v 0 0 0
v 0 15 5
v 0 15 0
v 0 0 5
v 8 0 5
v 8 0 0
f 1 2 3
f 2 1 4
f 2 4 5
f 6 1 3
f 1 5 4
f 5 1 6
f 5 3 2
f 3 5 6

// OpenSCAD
// Title: Wedge Triangle Module
// Author: Carlo Wood
// Date: 19/8/2016
// License: Creative Commons - Share Alike - Attribution

// Usage: Include in your other .scad projects and call wedge with arguments for the height
//        of the wedge, two of the legs of the wedge, and the angle between those legs.
//        The resulting wedge will be placed with the point at the origin, `leg1' along the x-axis
//        and extending `height' into the z axis, with the angle starting at the x axis and
//        extending counter-clockwise as per the right-hand rule towards `leg2`.


//           Y-axis
//           |
//           |  /\
//      leg2 --/  \
//           |/    \
//           /)_____\_______X-axis
//     angle--'  \__ leg1
//
module wedge(angle, leg1, leg2, height = 0.5)
{
  // Store the length of all three sides in an array.
  side = [sqrt(leg1 * leg1 + leg2 * leg2 - 2 * leg1 * leg2 * cos(angle)),	// Law of Cosines.
          leg1,
          leg2];

  i = (leg2 > leg1) ? 2 : 1;
  longest_leg = side[i];
  longest_side = (side[0] > longest_leg) ? side[0] : longest_leg;

  // The corner opposite of the shortest leg must be less than 90 degrees.
  sa = asin(side[3 - i] * sin(angle) / side[0]);		// Law of Sines.
  sb = 180 - angle - sa;					// Sum of all angles is 180 degrees.

  // Store the size of all three angles in an array.
  a = [angle, (i == 1) ? sb : sa, (i == 1) ? sa : sb];

  // Is there anything to draw at all?
  if (angle > 0 && angle < 180)
  {
    intersection()
    {
      if (angle <= 90)
	intersection()
	{
	  cube([longest_leg, longest_leg, height]);
	  rotate([0, 0, angle - 90])
	    cube([longest_leg, longest_leg, height]);
	}
      else
	union()
	{
	  cube([longest_leg, longest_leg, height]);
	  rotate([0, 0, angle - 90])
	    cube([longest_leg, longest_leg, height]);
	}
      if (a[2] < 90)
      {
	translate([leg1, 0, 0])
	  rotate([0, 0, 90 - a[2]])
	    translate([-longest_side, 0, 0])
	      cube([longest_side, longest_side, height]);
      }
      else
      {
        rotate([0, 0, angle])
	  translate([leg2, 0, 0])
	    rotate([0, 0, a[1]])
	      translate([-longest_side, 0, 0])
	        cube([longest_side, longest_side, height]);
      }
    }
  }
}

wedge(90, 8, 15, 5);

// Example: wedge(145, 10, 20, 5); 
// Would create a triangle with thickness 5 where two legs,
// being 10 and 20 respectively, making an angle of 145 degrees,
// the point on the z-axis and leg1 along the x-axis.
